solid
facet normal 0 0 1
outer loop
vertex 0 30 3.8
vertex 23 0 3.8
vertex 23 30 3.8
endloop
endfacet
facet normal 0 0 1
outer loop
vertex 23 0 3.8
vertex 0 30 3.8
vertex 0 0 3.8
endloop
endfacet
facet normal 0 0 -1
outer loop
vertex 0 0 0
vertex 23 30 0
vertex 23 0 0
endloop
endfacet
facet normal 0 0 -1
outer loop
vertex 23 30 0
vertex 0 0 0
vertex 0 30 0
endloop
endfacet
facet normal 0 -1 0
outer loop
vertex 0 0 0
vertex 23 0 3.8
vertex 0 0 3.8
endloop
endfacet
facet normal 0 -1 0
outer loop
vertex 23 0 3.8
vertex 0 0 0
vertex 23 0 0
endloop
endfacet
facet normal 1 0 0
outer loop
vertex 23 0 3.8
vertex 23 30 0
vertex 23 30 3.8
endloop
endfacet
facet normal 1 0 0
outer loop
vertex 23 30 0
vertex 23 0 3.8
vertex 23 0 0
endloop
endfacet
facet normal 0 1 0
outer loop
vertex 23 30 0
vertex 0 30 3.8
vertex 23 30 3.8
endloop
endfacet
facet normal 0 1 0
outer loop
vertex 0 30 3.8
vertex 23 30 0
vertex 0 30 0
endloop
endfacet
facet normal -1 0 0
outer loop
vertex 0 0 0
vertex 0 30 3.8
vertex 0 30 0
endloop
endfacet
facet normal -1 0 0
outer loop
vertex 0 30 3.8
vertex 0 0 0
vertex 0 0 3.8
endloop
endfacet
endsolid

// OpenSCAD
/* Warning, this is a very basic generator with a lot of approximation 
input data : [HB2FBGA, H5C, 23x30x3.80mm, 767, , A, C04-25653A]
generated by com.zoubworld.electronics.cad.model3d.Basic
Date : Sun Feb 15 10:50:49 CET 2026
*/

//body
color("black")
translate([0,0,0])
cube([23.0,30.0,3.8], center=false);
